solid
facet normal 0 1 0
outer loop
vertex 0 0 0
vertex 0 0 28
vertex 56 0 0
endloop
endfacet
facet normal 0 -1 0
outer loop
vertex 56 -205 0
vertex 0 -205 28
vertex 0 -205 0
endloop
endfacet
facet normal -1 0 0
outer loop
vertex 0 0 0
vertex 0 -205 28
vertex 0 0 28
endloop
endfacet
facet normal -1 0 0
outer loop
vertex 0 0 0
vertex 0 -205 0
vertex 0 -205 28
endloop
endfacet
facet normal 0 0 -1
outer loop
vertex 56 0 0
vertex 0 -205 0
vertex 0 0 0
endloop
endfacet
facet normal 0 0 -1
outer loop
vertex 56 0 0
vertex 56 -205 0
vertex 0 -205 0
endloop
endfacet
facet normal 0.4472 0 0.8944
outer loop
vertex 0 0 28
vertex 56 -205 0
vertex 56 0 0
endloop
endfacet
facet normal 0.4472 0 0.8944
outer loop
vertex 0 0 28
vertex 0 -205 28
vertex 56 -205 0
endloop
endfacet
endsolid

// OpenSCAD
rotate([90, 0, 0])
linear_extrude(
    height = 205
)
polygon(
    points = [
        [0, 0],
        [0, 28], 
        [56, 0]
    ]
);
